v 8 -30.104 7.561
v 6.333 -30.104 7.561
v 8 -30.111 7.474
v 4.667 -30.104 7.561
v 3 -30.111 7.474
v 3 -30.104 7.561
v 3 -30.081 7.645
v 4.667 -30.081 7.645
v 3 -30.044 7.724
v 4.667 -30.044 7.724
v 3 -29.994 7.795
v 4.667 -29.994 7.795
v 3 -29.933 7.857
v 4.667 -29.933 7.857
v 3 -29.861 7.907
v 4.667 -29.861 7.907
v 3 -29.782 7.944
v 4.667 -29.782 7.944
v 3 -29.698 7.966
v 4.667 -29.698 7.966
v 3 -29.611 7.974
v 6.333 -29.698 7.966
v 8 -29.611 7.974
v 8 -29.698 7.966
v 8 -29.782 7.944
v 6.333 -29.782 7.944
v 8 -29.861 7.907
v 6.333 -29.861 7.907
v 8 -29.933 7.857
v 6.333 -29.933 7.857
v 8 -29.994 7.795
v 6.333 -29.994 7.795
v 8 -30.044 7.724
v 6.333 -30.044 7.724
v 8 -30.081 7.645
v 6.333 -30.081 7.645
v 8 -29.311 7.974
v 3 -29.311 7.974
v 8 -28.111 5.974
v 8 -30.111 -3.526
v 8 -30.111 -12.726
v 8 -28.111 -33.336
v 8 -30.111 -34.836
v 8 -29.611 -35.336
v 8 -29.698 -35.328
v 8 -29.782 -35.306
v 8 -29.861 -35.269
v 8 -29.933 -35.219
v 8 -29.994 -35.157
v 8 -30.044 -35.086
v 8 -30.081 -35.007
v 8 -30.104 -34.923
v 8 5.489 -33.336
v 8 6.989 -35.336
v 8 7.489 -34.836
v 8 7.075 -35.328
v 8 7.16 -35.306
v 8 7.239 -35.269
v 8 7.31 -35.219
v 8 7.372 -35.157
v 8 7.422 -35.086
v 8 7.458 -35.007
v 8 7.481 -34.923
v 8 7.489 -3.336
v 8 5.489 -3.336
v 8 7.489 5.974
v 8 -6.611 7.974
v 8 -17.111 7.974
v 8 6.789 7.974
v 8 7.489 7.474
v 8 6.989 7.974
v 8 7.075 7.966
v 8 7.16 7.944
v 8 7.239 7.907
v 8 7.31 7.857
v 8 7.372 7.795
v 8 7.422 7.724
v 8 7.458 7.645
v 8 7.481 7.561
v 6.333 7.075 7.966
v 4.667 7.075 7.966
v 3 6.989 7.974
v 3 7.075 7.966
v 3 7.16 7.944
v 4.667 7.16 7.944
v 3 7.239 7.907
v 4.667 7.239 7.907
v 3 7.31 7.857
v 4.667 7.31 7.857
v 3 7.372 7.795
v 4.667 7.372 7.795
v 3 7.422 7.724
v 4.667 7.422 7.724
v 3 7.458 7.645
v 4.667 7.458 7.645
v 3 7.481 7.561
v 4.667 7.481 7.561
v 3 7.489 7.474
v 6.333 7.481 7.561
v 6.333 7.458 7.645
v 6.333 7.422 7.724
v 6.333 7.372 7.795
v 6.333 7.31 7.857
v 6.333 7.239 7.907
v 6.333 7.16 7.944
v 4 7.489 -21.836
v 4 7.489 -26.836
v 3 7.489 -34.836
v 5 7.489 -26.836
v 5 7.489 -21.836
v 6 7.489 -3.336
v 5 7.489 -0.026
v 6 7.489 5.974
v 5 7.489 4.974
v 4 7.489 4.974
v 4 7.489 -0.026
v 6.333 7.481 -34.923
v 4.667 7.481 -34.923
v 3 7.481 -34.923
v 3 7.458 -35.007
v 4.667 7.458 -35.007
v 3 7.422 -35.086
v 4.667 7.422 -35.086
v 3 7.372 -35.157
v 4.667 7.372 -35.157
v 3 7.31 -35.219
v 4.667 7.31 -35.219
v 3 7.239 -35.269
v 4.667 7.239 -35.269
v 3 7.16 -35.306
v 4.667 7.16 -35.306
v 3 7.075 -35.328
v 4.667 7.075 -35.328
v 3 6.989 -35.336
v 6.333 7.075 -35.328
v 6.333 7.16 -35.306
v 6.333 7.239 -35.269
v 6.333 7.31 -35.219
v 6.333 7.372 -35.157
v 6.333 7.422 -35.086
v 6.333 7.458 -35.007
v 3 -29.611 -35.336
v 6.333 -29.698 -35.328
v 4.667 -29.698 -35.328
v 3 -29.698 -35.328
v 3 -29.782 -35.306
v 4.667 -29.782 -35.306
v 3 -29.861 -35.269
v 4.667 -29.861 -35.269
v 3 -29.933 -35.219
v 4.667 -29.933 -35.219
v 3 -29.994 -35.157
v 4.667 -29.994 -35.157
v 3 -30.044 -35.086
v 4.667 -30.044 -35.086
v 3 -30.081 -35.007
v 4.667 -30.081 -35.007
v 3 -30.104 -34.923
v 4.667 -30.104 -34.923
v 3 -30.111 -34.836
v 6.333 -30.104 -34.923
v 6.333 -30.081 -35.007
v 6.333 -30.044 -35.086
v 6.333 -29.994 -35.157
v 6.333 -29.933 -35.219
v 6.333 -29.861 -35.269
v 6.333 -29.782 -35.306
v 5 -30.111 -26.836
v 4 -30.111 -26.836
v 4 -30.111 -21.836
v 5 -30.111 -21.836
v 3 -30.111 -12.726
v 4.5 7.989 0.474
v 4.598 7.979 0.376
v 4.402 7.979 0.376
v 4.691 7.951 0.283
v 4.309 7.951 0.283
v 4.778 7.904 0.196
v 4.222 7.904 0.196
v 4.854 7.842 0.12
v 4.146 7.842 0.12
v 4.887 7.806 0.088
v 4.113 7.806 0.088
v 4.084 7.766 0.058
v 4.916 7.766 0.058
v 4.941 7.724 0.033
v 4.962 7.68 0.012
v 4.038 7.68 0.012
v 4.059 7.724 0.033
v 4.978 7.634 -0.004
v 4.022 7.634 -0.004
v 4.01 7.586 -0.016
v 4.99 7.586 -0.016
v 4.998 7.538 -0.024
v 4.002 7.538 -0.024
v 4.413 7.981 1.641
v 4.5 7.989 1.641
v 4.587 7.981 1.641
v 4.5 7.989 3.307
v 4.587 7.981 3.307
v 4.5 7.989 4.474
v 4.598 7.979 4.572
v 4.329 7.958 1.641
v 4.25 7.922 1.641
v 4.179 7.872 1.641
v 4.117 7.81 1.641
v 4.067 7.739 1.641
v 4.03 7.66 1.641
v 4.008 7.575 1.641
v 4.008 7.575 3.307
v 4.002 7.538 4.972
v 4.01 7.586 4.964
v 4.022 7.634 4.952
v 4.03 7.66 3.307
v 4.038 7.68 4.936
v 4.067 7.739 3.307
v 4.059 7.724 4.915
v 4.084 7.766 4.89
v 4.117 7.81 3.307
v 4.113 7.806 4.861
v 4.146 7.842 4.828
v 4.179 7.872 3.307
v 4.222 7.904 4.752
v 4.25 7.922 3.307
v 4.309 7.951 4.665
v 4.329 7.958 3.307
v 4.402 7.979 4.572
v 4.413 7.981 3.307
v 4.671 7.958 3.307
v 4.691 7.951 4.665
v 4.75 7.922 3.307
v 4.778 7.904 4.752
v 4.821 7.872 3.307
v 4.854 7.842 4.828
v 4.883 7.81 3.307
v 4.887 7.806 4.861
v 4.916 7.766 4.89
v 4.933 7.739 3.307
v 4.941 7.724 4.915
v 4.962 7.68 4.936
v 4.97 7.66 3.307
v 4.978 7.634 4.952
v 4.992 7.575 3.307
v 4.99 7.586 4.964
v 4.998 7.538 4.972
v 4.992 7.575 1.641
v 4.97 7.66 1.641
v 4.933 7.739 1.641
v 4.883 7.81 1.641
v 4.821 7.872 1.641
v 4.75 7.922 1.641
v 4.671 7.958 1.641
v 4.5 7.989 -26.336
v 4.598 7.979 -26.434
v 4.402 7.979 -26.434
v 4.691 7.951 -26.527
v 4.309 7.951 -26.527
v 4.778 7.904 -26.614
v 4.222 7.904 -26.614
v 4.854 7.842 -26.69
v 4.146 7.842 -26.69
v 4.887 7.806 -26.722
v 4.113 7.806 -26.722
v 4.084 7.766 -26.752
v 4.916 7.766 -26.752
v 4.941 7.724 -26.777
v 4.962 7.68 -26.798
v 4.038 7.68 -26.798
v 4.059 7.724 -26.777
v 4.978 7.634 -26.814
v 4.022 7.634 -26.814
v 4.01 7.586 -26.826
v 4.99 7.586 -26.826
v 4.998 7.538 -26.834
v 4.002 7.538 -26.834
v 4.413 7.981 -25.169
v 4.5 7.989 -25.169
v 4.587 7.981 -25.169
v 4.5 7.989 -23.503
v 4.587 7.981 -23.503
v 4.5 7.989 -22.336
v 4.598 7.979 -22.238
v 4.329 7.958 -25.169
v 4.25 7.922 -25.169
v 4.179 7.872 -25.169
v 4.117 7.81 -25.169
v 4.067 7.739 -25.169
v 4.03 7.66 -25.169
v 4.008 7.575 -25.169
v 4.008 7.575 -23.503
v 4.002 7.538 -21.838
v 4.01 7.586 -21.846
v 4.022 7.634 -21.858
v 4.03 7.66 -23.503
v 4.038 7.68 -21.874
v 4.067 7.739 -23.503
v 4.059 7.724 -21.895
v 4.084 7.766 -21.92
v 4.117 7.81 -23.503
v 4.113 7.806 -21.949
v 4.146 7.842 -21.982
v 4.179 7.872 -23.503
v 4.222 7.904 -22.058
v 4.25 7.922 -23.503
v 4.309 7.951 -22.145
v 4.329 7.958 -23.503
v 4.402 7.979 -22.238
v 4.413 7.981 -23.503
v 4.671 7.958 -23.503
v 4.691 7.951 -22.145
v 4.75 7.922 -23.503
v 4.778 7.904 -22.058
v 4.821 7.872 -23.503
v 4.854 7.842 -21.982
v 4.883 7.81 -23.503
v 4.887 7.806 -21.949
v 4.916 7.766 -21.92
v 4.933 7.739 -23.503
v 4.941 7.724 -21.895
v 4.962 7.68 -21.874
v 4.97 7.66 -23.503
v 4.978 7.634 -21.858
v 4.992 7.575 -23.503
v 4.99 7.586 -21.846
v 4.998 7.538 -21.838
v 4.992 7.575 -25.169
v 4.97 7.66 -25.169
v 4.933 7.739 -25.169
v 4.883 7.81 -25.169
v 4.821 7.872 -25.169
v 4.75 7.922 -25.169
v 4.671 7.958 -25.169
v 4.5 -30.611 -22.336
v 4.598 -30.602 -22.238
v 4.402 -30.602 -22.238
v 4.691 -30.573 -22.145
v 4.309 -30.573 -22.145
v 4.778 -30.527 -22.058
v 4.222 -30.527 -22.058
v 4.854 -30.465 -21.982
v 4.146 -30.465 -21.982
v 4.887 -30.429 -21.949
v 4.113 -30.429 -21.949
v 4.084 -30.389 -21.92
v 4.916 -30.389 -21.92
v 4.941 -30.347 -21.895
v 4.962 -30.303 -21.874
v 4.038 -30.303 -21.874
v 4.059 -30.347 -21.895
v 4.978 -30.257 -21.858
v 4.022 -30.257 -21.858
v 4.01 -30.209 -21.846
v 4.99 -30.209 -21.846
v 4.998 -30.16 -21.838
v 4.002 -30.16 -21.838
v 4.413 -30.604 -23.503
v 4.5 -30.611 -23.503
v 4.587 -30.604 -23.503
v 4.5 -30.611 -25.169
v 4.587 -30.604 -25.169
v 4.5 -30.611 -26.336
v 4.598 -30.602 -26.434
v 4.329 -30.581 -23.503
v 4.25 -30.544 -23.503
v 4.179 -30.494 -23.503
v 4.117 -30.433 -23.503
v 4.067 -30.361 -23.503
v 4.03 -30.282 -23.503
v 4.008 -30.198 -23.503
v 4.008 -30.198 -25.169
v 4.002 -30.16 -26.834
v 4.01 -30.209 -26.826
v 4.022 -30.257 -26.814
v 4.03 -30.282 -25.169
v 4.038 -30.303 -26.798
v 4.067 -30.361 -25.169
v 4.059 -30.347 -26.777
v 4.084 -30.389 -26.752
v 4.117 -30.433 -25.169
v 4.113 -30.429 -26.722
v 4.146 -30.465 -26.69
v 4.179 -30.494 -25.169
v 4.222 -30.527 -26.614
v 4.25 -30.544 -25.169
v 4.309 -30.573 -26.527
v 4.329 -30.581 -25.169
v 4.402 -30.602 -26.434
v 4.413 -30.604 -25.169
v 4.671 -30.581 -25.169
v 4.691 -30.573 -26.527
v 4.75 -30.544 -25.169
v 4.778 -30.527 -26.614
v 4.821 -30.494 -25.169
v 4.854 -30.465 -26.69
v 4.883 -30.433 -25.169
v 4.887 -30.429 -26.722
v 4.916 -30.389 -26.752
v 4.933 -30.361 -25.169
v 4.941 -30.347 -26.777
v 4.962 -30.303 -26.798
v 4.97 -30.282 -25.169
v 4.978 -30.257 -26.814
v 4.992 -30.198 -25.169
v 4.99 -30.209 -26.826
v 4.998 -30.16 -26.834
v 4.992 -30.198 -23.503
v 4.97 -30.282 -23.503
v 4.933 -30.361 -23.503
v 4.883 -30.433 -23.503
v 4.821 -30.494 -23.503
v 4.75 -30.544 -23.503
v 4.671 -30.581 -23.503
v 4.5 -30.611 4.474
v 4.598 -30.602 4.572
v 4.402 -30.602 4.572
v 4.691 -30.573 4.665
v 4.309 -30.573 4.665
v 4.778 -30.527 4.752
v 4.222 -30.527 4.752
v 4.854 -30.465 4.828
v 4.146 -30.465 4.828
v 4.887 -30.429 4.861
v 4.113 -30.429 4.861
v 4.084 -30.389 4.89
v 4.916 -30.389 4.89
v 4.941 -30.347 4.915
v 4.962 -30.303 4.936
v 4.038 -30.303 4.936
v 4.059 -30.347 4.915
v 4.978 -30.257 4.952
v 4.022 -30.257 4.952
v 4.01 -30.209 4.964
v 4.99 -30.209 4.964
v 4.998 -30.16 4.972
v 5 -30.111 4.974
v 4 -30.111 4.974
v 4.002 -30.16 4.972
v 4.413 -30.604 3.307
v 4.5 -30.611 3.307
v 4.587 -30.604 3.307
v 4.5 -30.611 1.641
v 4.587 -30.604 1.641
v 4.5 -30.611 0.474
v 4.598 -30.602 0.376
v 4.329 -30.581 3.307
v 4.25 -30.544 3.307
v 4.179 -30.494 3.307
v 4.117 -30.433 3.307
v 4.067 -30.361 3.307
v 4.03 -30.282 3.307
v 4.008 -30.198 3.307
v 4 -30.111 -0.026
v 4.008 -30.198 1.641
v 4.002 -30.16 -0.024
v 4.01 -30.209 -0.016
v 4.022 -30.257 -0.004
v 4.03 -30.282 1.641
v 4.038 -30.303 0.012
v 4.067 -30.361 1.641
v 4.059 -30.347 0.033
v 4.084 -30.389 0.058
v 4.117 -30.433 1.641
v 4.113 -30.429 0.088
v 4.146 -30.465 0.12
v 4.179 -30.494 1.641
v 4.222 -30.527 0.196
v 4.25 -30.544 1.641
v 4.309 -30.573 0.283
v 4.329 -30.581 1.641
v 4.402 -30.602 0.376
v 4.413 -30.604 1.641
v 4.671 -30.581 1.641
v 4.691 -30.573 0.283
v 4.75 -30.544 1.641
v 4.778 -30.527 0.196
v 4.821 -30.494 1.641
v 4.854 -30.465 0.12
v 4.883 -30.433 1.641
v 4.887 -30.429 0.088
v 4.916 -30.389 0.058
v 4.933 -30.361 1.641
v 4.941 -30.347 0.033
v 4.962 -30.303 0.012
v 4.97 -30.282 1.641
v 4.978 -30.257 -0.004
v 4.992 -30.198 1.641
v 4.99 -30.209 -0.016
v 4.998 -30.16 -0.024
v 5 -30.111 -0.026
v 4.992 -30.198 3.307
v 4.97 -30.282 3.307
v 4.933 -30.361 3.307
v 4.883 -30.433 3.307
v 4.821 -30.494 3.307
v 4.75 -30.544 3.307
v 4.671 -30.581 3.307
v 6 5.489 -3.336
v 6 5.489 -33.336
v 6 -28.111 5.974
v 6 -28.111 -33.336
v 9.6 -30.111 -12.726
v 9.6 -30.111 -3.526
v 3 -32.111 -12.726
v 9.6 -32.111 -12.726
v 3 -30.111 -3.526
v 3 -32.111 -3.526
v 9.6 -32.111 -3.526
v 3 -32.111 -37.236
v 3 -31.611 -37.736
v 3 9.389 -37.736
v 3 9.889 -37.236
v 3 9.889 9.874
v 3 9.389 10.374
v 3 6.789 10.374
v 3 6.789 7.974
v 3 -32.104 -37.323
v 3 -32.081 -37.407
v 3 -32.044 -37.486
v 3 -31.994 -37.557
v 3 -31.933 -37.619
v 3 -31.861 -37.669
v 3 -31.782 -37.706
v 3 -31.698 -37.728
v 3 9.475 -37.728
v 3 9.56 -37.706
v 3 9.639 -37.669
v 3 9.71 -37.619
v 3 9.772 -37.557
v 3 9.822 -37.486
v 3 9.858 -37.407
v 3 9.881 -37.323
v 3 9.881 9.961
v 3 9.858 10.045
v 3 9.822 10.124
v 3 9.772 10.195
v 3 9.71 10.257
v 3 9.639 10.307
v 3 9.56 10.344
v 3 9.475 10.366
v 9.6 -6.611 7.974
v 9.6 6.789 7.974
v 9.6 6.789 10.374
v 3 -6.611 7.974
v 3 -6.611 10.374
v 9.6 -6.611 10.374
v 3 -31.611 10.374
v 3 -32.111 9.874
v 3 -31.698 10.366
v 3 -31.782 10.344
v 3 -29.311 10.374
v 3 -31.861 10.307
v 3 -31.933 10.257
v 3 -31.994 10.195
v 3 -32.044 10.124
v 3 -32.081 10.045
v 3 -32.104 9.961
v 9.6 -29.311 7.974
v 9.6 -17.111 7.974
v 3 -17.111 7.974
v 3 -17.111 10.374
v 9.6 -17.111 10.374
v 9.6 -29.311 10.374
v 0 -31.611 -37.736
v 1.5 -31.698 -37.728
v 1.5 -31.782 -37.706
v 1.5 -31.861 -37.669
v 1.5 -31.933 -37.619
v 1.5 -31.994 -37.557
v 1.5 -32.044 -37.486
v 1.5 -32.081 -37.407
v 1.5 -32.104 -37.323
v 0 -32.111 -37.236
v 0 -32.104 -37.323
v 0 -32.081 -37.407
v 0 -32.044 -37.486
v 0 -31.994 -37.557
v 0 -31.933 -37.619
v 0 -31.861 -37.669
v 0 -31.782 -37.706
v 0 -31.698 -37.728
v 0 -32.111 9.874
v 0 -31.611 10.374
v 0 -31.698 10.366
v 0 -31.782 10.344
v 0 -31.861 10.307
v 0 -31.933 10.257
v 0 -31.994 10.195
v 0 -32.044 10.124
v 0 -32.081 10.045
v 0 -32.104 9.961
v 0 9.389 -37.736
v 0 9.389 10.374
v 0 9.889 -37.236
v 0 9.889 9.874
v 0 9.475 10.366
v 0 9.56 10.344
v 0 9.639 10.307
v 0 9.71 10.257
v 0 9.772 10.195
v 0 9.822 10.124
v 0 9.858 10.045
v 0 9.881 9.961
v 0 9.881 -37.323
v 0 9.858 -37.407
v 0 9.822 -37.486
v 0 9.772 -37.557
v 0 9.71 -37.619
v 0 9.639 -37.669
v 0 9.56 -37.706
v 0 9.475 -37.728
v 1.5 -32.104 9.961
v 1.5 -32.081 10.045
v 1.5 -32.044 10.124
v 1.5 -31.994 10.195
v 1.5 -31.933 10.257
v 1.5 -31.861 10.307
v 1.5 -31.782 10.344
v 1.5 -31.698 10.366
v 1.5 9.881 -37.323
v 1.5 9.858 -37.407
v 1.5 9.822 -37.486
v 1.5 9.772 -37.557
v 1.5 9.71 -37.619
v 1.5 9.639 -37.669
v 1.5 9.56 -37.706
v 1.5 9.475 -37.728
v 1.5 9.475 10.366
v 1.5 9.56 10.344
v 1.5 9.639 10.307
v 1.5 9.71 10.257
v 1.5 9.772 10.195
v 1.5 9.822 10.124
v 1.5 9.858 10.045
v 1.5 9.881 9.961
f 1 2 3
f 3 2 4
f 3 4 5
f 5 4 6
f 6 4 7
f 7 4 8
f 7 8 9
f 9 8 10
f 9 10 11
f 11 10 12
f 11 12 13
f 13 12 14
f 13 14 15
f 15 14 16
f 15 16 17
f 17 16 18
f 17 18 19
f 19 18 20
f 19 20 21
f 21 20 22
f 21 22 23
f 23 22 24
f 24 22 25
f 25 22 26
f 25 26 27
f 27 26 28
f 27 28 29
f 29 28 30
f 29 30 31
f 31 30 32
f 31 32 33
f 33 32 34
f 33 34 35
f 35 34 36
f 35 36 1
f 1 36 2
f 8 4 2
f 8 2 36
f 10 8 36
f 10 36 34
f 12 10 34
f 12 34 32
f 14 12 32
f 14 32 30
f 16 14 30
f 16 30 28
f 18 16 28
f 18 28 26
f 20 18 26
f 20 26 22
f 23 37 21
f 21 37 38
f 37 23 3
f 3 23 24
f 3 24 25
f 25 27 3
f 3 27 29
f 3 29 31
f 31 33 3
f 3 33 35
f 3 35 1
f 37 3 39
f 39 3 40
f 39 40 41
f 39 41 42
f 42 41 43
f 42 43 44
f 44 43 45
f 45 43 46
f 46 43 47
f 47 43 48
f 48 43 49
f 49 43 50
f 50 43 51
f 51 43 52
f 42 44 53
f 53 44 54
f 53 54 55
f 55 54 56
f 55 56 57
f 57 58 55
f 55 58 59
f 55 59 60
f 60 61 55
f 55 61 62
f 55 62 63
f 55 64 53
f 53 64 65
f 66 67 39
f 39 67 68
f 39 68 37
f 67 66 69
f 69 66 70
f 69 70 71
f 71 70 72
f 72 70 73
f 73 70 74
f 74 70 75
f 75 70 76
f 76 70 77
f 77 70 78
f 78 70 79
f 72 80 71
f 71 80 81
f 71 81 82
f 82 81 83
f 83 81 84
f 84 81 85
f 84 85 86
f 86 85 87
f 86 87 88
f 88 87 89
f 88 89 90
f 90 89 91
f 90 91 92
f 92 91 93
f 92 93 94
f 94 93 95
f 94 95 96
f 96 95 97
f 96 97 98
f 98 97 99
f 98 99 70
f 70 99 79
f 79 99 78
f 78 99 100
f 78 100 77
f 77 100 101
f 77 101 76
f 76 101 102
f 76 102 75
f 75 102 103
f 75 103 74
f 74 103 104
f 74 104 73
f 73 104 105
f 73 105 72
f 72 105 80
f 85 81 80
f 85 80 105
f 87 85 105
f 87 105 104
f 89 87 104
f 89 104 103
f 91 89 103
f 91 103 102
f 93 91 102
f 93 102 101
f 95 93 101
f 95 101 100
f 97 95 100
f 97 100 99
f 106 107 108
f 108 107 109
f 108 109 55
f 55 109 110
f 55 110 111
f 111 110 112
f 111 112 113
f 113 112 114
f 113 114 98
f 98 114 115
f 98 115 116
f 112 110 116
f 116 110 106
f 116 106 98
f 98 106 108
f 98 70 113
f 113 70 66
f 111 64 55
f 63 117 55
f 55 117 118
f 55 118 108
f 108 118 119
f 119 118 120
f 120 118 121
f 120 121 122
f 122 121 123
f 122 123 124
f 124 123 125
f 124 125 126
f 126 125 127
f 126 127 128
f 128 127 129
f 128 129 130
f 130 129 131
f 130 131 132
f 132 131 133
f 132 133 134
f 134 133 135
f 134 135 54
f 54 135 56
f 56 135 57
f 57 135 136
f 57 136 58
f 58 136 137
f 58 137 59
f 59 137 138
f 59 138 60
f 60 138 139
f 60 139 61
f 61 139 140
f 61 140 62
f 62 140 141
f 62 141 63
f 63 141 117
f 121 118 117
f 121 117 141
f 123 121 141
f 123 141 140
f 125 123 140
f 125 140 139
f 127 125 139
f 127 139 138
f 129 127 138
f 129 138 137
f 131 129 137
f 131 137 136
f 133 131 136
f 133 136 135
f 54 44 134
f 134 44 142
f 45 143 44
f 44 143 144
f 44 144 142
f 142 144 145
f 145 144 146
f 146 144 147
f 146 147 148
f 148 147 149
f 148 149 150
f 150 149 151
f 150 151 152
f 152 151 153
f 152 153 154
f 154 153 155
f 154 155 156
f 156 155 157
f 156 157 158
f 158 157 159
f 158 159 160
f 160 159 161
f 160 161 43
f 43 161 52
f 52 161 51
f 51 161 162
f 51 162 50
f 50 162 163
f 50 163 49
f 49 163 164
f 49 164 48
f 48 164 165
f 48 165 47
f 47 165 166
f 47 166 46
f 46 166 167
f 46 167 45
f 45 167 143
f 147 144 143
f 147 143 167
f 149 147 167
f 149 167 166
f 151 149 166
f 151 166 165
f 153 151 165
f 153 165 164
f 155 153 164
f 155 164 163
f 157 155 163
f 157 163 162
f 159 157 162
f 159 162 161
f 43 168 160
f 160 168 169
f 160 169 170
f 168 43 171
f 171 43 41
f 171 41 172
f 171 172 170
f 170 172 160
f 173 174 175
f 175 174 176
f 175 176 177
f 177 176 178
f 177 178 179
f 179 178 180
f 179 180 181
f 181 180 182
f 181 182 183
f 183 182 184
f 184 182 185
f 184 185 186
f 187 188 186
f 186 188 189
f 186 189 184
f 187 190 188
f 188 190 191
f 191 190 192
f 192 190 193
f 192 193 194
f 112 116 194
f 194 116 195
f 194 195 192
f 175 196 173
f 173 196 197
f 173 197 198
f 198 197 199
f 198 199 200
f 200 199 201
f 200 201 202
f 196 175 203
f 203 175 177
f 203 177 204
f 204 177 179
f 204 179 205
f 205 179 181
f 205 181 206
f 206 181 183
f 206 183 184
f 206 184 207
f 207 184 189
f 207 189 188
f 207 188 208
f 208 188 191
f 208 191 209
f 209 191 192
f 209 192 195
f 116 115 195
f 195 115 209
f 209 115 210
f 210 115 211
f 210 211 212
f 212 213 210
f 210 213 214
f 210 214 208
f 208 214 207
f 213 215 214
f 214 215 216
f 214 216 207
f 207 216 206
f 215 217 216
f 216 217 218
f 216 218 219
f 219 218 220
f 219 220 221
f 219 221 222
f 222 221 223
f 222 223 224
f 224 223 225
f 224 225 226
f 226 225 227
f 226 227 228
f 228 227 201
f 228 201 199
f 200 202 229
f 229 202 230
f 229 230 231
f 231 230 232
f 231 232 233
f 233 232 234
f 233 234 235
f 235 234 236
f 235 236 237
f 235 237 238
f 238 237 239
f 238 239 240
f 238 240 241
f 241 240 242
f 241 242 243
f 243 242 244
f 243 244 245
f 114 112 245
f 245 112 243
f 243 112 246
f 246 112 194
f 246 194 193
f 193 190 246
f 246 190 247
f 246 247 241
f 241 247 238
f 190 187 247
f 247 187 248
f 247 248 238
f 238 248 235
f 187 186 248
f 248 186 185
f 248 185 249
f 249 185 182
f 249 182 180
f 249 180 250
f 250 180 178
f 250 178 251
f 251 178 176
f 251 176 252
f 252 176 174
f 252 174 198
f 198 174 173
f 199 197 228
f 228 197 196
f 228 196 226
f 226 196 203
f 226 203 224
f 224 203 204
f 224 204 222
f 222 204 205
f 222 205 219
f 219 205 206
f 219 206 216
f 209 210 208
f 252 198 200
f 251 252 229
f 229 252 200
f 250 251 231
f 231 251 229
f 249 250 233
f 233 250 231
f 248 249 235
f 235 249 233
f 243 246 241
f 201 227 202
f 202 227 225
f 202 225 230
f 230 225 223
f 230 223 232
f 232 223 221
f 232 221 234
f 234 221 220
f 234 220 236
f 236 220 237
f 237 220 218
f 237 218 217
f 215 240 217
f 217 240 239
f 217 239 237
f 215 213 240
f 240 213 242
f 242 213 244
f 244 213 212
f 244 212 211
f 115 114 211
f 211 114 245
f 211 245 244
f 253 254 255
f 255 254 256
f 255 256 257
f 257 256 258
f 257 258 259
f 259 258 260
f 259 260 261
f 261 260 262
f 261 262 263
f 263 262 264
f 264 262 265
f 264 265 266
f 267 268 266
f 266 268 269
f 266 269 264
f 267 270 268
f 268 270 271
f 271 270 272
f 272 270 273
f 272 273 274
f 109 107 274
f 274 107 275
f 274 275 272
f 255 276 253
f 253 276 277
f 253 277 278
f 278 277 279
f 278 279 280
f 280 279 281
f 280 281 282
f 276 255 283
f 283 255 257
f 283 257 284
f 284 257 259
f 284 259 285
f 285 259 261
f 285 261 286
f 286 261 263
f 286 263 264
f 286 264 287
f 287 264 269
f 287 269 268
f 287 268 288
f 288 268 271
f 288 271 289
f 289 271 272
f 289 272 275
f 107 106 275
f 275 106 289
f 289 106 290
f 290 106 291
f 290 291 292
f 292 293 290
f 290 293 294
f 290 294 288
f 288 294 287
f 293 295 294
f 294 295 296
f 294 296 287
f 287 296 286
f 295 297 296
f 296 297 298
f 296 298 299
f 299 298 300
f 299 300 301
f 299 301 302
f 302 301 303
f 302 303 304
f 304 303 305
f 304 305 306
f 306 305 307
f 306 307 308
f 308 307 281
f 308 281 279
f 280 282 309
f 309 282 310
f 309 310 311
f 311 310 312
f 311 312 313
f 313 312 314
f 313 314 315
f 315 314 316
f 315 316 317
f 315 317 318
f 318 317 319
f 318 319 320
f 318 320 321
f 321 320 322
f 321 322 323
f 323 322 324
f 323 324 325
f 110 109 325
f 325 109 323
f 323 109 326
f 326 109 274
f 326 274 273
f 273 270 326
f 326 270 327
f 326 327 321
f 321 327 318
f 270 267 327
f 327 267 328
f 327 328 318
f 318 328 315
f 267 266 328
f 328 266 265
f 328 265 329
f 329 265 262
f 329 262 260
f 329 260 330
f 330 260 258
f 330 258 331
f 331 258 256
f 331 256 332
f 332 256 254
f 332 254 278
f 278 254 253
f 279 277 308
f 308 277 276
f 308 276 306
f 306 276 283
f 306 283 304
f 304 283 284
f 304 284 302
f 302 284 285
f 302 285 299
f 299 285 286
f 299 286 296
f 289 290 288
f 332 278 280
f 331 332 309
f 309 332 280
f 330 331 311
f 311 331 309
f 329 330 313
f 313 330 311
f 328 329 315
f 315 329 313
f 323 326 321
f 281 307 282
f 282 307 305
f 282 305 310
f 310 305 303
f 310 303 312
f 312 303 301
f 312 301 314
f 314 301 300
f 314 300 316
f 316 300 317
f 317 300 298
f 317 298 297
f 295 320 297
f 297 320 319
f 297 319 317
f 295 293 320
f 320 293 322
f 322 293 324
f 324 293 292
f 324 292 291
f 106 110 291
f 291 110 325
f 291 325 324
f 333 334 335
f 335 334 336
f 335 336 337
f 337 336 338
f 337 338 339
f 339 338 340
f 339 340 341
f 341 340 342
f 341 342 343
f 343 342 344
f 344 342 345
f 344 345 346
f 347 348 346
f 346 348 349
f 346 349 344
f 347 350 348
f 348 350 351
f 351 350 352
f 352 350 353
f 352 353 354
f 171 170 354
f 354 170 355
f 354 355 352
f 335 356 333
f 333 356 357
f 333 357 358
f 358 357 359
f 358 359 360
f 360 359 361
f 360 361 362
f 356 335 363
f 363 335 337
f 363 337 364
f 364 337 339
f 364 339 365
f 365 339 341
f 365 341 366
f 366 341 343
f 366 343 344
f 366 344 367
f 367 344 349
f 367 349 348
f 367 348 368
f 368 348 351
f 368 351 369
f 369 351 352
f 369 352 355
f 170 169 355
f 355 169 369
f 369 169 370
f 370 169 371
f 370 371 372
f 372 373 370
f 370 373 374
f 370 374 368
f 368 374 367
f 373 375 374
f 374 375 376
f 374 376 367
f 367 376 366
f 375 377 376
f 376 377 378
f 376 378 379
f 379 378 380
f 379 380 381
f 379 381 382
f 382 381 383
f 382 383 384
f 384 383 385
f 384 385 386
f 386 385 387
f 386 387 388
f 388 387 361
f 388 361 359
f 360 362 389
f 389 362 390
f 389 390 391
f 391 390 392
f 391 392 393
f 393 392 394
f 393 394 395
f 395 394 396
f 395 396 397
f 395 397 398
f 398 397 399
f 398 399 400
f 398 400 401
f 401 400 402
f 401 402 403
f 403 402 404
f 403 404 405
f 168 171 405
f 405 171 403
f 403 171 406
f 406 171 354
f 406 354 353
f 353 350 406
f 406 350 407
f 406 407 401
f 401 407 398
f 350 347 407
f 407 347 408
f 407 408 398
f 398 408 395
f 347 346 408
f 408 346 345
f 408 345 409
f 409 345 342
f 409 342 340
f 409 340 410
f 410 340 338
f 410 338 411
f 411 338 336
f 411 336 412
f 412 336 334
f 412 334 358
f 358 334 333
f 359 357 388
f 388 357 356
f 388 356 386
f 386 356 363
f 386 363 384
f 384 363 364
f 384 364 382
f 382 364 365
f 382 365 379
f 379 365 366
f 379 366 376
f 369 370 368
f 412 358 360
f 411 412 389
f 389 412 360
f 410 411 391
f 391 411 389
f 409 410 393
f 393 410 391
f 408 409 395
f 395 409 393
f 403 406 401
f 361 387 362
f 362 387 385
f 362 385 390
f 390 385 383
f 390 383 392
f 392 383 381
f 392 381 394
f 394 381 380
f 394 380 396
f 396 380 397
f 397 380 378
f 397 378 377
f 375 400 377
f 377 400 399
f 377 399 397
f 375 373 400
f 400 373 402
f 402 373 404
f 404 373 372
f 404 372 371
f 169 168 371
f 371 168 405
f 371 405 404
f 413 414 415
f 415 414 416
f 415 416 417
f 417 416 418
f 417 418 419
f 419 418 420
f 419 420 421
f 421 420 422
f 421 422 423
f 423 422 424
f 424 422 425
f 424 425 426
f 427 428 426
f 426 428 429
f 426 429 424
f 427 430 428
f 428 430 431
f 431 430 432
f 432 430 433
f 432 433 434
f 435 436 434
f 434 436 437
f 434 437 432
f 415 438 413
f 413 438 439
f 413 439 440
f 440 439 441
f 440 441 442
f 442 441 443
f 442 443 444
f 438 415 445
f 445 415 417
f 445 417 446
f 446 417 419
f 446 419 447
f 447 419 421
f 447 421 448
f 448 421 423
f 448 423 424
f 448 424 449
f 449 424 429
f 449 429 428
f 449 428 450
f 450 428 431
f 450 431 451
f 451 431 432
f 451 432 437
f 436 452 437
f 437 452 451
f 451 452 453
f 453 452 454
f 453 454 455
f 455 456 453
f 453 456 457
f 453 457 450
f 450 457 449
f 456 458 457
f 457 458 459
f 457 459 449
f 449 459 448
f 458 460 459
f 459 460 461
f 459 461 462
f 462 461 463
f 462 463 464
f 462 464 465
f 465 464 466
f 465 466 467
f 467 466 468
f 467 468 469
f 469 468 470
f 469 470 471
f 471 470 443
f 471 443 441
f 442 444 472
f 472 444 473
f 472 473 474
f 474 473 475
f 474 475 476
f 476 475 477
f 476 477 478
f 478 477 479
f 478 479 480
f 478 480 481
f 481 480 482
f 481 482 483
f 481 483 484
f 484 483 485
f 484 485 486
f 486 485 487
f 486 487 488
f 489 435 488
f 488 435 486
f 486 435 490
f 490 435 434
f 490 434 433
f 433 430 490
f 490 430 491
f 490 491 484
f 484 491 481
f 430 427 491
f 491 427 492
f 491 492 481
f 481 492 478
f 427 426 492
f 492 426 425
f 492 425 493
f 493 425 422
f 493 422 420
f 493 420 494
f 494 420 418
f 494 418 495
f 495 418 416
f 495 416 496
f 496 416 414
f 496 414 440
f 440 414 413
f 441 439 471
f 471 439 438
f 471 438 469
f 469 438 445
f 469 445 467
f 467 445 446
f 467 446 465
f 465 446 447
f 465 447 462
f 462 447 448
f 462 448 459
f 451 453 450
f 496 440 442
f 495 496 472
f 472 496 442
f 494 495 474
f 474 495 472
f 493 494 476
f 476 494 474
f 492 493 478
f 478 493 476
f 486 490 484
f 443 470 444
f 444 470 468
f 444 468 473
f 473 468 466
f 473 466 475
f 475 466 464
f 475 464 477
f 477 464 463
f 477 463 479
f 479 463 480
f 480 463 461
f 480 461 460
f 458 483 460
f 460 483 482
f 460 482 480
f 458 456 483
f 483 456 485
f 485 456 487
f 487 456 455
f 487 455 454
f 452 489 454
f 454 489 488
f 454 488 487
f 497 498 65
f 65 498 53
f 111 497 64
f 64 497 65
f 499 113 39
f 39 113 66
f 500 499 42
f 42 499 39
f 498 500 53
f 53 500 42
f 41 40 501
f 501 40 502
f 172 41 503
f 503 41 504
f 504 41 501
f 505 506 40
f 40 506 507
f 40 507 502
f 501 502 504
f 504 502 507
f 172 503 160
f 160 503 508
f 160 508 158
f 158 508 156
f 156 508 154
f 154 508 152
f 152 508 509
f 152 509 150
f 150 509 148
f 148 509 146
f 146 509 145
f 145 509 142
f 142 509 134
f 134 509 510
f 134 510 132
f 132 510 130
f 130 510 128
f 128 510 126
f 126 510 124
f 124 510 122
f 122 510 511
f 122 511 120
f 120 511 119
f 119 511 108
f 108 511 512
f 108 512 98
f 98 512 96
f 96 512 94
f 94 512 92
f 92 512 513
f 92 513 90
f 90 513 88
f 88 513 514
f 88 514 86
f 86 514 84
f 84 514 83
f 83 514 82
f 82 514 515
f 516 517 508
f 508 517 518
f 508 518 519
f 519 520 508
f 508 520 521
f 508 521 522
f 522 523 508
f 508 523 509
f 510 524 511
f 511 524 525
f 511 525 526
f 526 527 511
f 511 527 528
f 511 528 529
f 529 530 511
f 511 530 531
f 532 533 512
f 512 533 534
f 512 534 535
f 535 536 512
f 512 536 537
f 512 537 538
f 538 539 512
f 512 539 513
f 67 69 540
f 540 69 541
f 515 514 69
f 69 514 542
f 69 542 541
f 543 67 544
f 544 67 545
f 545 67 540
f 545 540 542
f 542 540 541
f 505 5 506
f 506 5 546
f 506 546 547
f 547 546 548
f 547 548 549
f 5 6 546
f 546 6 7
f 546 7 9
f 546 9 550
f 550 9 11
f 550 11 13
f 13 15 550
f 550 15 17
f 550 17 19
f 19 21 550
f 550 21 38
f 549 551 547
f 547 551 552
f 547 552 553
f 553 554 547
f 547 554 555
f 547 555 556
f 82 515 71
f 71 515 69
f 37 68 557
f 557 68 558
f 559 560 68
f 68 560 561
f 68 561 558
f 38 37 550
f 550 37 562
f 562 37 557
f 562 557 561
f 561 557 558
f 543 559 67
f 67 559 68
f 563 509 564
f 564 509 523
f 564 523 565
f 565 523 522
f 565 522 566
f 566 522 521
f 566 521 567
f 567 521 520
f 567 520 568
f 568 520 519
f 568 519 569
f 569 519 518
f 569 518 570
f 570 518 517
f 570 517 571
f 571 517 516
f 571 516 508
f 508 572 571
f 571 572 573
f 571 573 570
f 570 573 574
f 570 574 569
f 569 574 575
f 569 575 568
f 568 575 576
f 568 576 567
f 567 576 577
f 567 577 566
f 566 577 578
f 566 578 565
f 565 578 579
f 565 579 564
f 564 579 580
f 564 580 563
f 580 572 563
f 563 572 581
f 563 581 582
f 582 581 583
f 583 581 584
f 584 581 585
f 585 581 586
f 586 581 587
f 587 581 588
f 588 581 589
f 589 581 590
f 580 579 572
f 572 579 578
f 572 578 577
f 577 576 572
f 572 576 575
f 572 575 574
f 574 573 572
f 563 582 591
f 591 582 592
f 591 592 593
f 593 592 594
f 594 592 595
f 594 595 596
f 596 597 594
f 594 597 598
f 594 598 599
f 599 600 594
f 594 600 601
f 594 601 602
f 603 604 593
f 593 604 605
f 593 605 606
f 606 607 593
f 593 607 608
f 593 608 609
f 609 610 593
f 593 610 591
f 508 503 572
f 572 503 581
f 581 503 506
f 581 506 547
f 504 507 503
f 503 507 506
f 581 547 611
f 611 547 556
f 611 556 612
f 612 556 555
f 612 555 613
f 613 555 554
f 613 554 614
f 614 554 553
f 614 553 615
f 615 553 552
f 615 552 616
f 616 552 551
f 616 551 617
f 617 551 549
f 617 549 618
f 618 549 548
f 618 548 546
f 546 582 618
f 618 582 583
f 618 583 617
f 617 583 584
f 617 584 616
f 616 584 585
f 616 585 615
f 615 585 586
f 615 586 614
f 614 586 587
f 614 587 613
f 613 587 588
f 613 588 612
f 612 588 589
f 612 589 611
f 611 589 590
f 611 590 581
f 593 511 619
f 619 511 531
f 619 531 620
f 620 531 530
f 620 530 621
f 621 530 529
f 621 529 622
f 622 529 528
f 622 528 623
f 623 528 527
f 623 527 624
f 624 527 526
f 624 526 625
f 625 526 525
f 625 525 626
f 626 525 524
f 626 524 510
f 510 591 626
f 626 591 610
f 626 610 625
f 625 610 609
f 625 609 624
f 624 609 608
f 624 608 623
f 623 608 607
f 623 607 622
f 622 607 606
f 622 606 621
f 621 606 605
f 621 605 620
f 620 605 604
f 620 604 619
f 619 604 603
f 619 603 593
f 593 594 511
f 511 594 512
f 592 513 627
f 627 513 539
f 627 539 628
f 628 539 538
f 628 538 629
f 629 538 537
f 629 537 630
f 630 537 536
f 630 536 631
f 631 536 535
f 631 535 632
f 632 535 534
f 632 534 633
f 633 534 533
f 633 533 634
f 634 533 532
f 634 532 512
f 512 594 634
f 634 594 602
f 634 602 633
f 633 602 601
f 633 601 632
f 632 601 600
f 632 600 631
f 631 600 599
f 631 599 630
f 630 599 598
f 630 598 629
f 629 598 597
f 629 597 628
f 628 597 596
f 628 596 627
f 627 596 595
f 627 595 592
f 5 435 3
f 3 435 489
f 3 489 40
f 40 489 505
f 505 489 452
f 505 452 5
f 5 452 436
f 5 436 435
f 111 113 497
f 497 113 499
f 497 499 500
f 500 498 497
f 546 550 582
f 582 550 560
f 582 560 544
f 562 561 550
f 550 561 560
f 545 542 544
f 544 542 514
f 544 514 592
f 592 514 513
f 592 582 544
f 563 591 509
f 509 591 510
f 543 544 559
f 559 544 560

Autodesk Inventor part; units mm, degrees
ref_plane "YZ Plane" through (0, 0, 0) normal (1, 0, 0) x (0, 1, 0)
ref_plane "XZ Plane" through (0, 0, 0) normal (0, 1, 0) x (-1, 0, 0)
ref_plane "XY Plane" through (0, 0, 0) normal (0, 0, 1) x (1, 0, 0)
sketch "Sketch1" plane through (0, 0, 0) normal (1, 0, 0) x (0, 1, 0)
  line L0 (9.8886, 10.374) -> (-32.1114, 10.374)
  line L1 (-32.1114, 10.374) -> (-32.1114, -37.736)
  line L2 (-32.1114, -37.736) -> (9.8886, -37.736)
  line L3 (9.8886, -37.736) -> (9.8886, 10.374)
  point P0 (0, 0)
  dimension "d0" = 42
  dimension "d1" = 48.11
extrude "Extrusion1" add sketch "Sketch1" along normal blind 3
sketch "Sketch2" plane through (3, 0, 0) normal (1, 0, 0) x (0, 0, -1)
  line L0 (-7.974, 7.4886) -> (35.336, 7.4886)
  line L1 (35.336, 7.4886) -> (35.336, -30.1114)
  line L2 (35.336, -30.1114) -> (-7.974, -30.1114)
  line L3 (-7.974, -30.1114) -> (-7.974, 7.4886)
  line L4 (37.736, 9.8886) -> (-10.374, 9.8886) projected
  line L5 (-10.374, 9.8886) -> (-10.374, -32.1114) projected
  line L6 (-10.374, -32.1114) -> (37.736, -32.1114) projected
  point P0 (0, 0)
  dimension "d4" = 43.31
  dimension "d6" = 2.4
  dimension "d7" = 2.4
  dimension "d20" = 2
extrude "Extrusion2" add sketch "Sketch2" along normal blind 3
fillet "Fillet1" radius 0.5 4 edges at (1.5, 9.8886, 10.374) (1.5, 9.8886, -37.736) (1.5, -32.1114, 10.374) (1.5, -32.1114, -37.736)
sketch "Sketch3" plane through (3, 0, 0) normal (1, 0, 0) x (0, 0, -1)
  line L0 (-10.374, 9.3886) -> (-10.374, -31.6114) projected
  line L1 (-7.974, -30.1114) -> (-7.974, 7.4886) projected
  line L2 (-10.374, -29.3114) -> (-7.974, -29.3114)
  line L3 (-7.974, -29.3114) -> (-7.974, -17.1114)
  line L4 (-7.974, -17.1114) -> (-10.374, -17.1114)
  line L5 (-10.374, -17.1114) -> (-10.374, -29.3114)
  line L6 (-9.874, -32.1114) -> (37.236, -32.1114) projected
  point P0 (0, 0)
  point P1 (-7.974, -29.6114)
  point P2 (-7.974, 6.9886)
  point P3 (-7.974, -29.3114)
  dimension "d12" = 12.2
  dimension "d13" = 2.8
extrude "PowerSocket" add sketch "Sketch3" along normal blind 6.6
sketch "Sketch5" plane through (3, 0, 0) normal (1, 0, 0) x (0, 0, -1)
  line L0 (-10.374, 9.3886) -> (-10.374, -17.1114) projected
  line L1 (-7.974, -17.1114) -> (-7.974, 7.4886) projected
  line L2 (-10.374, -6.6114) -> (-7.974, -6.6114)
  line L3 (-7.974, -6.6114) -> (-7.974, 6.7886)
  line L4 (-7.974, 6.7886) -> (-10.374, 6.7886)
  line L5 (-10.374, 6.7886) -> (-10.374, -6.6114)
  line L6 (-7.974, -17.1114) -> (-10.374, -17.1114) projected
  line L7 (35.336, 7.4886) -> (-7.974, 7.4886) projected
  line L8 (37.236, 9.8886) -> (-9.874, 9.8886) projected
  point P0 (0, 0)
  point P1 (-10.374, 6.7886)
  point P2 (-7.974, -6.6114)
  dimension "d21" = 13.4
  dimension "d75" = 3.1
extrude "RJ-12" add sketch "Sketch5" along normal blind 6.6 contours L4 L1 L2 L0
sketch "Sketch6" plane through (3, 0, 0) normal (1, 0, 0) x (0, 0, -1)
  line L0 (-9.874, -32.1114) -> (37.236, -32.1114) projected
  line L1 (-7.974, -30.1114) -> (35.336, -30.1114) projected
  line L2 (12.726, -32.1114) -> (3.526, -32.1114)
  line L3 (3.526, -32.1114) -> (3.526, -30.1114)
  line L4 (3.526, -30.1114) -> (12.726, -30.1114)
  line L5 (12.726, -30.1114) -> (12.726, -32.1114)
  line L6 (-10.374, -29.3114) -> (-10.374, -31.6114) projected
  point P0 (0, 0)
  dimension "d25" = 9.2
  dimension "d26" = 13.9
extrude "USB-C" add sketch "Sketch6" along normal blind 6.6
sketch "Sketch7" plane through (6, 0, 0) normal (1, 0, 0) x (0, 0, -1)
  line L0 (35.336, 7.4886) -> (-7.974, 7.4886) projected
  line L1 (-7.974, 7.4886) -> (-5.974, 7.4886)
  line L2 (-5.974, 7.4886) -> (-5.974, -30.1114)
  line L3 (-7.974, -30.1114) -> (3.526, -30.1114) projected
  line L4 (-5.974, -30.1114) -> (-7.974, -30.1114)
  line L5 (-10.374, -29.3114) -> (-10.374, -31.6114) projected
  line L6 (-7.974, 7.4886) -> (-7.974, -17.1114) projected
  line L7 (-7.974, -30.1114) -> (-7.974, 7.4886)
  line L8 (35.336, -30.1114) -> (12.726, -30.1114) projected
  line L9 (-5.974, -30.1114) -> (35.336, -30.1114)
  line L10 (35.336, -30.1114) -> (35.336, -28.1114)
  line L11 (35.336, 7.4886) -> (35.336, -30.1114) projected
  line L12 (35.336, -28.1114) -> (-5.974, -28.1114)
  line L13 (35.336, -28.1114) -> (35.336, 7.4886)
  line L14 (35.336, 7.4886) -> (33.336, 7.4886)
  line L15 (33.336, 7.4886) -> (33.336, -28.1114)
  line L16 (33.336, 7.4886) -> (3.336, 7.4886)
  line L17 (3.336, 7.4886) -> (3.336, 5.4886)
  line L18 (3.336, 5.4886) -> (33.336, 5.4886)
  point P0 (0, 0)
  point P1 (-7.974, 6.7886)
  point P2 (-7.974, 6.6886)
  dimension "d29" = 2
  dimension "d30" = 2
  dimension "d31" = 2
  dimension "d32" = 2
  dimension "d33" = 30
  dimension "d34" = 2
extrude "Extrusion7" add sketch "Sketch7" along normal blind 2 contours L11 L12 L15 L0 | L15 L18 L17 L0 | L10 L8 L9 L3 L2 L12 | L2 L3 L7 L6 L0
sketch "Sketch8" plane through (3, -30.1114, -3.526) normal (0, -1, 0) x (1, 0, 0)
  line L0 (2, 8.5) -> (1, 8.5)
  line L1 (1, 8.5) -> (1, 3.5)
  line L2 (1, 3.5) -> (2, 3.5)
  line L3 (2, 3.5) -> (2, 8.5)
  line L4 (0, 11.5) -> (5, 11.5) projected
  line L5 (5, 11.5) -> (5, 0) projected
  line L6 (0, 13.4) -> (0, 0) projected
  point P0 (-3, 3.526)
  point P1 (2, 6)
  dimension "d37" = 1
  dimension "d38" = 5
  dimension "d39" = 5.5
  dimension "d60" = 1
extrude "Extrusion8" add sketch "Sketch8" along normal blind 0.5
fillet "Fillet3" radius 0.5 4 edges at (5, -30.6114, 2.474) (4, -30.6114, 2.474) (4.5, -30.6114, 4.974) (4.5, -30.6114, -0.026)
sketch "Sketch9" plane through (3, -30.1114, -35.336) normal (0, -1, 0) x (1, 0, 0)
  line L0 (2, 13.5) -> (1, 13.5)
  line L1 (1, 13.5) -> (1, 8.5)
  line L2 (1, 8.5) -> (2, 8.5)
  line L3 (2, 8.5) -> (2, 13.5)
  line L4 (5, 22.61) -> (5, 0) projected
  line L5 (0, 0) -> (5, 0) projected
  line L6 (0, 22.61) -> (0, -1.9) projected
  point P0 (-3, 35.336)
  point P1 (2, 11)
  dimension "d44" = 1
  dimension "d45" = 5
  dimension "d47" = 11
  dimension "d59" = 1
extrude "Extrusion9" add sketch "Sketch9" along normal blind 0.5
fillet "Fillet4" radius 0.5 4 edges at (5, -30.6114, -24.336) (4, -30.6114, -24.336) (4.5, -30.6114, -21.836) (4.5, -30.6114, -26.836)
sketch "Sketch10" plane through (3, 7.4886, 7.974) normal (0, 1, 0) x (1, 0, 0)
  line L0 (2, 34.81) -> (1, 34.81)
  line L1 (1, 34.81) -> (1, 29.81)
  line L2 (1, 29.81) -> (2, 29.81)
  line L3 (2, 29.81) -> (2, 34.81)
  line L4 (5, 43.31) -> (5, 11.31) projected
  line L5 (0, 43.31) -> (5, 43.31) projected
  line L6 (0, 45.21) -> (0, -1.9) projected
  point P0 (-3, 7.974)
  point P1 (2, 32.31)
  dimension "d51" = 1
  dimension "d52" = 5
  dimension "d54" = 11
  dimension "d58" = 1
extrude "Extrusion10" add sketch "Sketch10" along normal blind 0.5
fillet "Fillet5" radius 0.5 4 edges at (5, 7.9886, -24.336) (4, 7.9886, -24.336) (4.5, 7.9886, -26.836) (4.5, 7.9886, -21.836)
sketch "Sketch11" plane through (3, 7.4886, 7.974) normal (0, 1, 0) x (1, 0, 0)
  line L0 (2, 8) -> (1, 8)
  line L1 (1, 8) -> (1, 3)
  line L2 (1, 3) -> (2, 3)
  line L3 (2, 3) -> (2, 8)
  line L4 (0, 45.21) -> (0, -1.9) projected
  line L5 (0, 0) -> (5, 0) projected
  point P0 (-3, 7.974)
  point P1 (1, 5.5)
  dimension "d61" = 1
  dimension "d62" = 5
  dimension "d63" = 1
  dimension "d64" = 5.5
extrude "Extrusion11" add sketch "Sketch11" along normal blind 0.5
fillet "Fillet6" radius 0.5 4 edges at (5, 7.9886, 2.474) (4, 7.9886, 2.474) (4.5, 7.9886, 4.974) (4.5, 7.9886, -0.026)
fillet "Fillet7" radius 0.5 4 edges at (5.5, -30.1114, -35.336) (5.5, 7.4886, -35.336) (5.5, 7.4886, 7.974) (5.5, -30.1114, 7.974)
properties part number "Enclosure_Bottom"
